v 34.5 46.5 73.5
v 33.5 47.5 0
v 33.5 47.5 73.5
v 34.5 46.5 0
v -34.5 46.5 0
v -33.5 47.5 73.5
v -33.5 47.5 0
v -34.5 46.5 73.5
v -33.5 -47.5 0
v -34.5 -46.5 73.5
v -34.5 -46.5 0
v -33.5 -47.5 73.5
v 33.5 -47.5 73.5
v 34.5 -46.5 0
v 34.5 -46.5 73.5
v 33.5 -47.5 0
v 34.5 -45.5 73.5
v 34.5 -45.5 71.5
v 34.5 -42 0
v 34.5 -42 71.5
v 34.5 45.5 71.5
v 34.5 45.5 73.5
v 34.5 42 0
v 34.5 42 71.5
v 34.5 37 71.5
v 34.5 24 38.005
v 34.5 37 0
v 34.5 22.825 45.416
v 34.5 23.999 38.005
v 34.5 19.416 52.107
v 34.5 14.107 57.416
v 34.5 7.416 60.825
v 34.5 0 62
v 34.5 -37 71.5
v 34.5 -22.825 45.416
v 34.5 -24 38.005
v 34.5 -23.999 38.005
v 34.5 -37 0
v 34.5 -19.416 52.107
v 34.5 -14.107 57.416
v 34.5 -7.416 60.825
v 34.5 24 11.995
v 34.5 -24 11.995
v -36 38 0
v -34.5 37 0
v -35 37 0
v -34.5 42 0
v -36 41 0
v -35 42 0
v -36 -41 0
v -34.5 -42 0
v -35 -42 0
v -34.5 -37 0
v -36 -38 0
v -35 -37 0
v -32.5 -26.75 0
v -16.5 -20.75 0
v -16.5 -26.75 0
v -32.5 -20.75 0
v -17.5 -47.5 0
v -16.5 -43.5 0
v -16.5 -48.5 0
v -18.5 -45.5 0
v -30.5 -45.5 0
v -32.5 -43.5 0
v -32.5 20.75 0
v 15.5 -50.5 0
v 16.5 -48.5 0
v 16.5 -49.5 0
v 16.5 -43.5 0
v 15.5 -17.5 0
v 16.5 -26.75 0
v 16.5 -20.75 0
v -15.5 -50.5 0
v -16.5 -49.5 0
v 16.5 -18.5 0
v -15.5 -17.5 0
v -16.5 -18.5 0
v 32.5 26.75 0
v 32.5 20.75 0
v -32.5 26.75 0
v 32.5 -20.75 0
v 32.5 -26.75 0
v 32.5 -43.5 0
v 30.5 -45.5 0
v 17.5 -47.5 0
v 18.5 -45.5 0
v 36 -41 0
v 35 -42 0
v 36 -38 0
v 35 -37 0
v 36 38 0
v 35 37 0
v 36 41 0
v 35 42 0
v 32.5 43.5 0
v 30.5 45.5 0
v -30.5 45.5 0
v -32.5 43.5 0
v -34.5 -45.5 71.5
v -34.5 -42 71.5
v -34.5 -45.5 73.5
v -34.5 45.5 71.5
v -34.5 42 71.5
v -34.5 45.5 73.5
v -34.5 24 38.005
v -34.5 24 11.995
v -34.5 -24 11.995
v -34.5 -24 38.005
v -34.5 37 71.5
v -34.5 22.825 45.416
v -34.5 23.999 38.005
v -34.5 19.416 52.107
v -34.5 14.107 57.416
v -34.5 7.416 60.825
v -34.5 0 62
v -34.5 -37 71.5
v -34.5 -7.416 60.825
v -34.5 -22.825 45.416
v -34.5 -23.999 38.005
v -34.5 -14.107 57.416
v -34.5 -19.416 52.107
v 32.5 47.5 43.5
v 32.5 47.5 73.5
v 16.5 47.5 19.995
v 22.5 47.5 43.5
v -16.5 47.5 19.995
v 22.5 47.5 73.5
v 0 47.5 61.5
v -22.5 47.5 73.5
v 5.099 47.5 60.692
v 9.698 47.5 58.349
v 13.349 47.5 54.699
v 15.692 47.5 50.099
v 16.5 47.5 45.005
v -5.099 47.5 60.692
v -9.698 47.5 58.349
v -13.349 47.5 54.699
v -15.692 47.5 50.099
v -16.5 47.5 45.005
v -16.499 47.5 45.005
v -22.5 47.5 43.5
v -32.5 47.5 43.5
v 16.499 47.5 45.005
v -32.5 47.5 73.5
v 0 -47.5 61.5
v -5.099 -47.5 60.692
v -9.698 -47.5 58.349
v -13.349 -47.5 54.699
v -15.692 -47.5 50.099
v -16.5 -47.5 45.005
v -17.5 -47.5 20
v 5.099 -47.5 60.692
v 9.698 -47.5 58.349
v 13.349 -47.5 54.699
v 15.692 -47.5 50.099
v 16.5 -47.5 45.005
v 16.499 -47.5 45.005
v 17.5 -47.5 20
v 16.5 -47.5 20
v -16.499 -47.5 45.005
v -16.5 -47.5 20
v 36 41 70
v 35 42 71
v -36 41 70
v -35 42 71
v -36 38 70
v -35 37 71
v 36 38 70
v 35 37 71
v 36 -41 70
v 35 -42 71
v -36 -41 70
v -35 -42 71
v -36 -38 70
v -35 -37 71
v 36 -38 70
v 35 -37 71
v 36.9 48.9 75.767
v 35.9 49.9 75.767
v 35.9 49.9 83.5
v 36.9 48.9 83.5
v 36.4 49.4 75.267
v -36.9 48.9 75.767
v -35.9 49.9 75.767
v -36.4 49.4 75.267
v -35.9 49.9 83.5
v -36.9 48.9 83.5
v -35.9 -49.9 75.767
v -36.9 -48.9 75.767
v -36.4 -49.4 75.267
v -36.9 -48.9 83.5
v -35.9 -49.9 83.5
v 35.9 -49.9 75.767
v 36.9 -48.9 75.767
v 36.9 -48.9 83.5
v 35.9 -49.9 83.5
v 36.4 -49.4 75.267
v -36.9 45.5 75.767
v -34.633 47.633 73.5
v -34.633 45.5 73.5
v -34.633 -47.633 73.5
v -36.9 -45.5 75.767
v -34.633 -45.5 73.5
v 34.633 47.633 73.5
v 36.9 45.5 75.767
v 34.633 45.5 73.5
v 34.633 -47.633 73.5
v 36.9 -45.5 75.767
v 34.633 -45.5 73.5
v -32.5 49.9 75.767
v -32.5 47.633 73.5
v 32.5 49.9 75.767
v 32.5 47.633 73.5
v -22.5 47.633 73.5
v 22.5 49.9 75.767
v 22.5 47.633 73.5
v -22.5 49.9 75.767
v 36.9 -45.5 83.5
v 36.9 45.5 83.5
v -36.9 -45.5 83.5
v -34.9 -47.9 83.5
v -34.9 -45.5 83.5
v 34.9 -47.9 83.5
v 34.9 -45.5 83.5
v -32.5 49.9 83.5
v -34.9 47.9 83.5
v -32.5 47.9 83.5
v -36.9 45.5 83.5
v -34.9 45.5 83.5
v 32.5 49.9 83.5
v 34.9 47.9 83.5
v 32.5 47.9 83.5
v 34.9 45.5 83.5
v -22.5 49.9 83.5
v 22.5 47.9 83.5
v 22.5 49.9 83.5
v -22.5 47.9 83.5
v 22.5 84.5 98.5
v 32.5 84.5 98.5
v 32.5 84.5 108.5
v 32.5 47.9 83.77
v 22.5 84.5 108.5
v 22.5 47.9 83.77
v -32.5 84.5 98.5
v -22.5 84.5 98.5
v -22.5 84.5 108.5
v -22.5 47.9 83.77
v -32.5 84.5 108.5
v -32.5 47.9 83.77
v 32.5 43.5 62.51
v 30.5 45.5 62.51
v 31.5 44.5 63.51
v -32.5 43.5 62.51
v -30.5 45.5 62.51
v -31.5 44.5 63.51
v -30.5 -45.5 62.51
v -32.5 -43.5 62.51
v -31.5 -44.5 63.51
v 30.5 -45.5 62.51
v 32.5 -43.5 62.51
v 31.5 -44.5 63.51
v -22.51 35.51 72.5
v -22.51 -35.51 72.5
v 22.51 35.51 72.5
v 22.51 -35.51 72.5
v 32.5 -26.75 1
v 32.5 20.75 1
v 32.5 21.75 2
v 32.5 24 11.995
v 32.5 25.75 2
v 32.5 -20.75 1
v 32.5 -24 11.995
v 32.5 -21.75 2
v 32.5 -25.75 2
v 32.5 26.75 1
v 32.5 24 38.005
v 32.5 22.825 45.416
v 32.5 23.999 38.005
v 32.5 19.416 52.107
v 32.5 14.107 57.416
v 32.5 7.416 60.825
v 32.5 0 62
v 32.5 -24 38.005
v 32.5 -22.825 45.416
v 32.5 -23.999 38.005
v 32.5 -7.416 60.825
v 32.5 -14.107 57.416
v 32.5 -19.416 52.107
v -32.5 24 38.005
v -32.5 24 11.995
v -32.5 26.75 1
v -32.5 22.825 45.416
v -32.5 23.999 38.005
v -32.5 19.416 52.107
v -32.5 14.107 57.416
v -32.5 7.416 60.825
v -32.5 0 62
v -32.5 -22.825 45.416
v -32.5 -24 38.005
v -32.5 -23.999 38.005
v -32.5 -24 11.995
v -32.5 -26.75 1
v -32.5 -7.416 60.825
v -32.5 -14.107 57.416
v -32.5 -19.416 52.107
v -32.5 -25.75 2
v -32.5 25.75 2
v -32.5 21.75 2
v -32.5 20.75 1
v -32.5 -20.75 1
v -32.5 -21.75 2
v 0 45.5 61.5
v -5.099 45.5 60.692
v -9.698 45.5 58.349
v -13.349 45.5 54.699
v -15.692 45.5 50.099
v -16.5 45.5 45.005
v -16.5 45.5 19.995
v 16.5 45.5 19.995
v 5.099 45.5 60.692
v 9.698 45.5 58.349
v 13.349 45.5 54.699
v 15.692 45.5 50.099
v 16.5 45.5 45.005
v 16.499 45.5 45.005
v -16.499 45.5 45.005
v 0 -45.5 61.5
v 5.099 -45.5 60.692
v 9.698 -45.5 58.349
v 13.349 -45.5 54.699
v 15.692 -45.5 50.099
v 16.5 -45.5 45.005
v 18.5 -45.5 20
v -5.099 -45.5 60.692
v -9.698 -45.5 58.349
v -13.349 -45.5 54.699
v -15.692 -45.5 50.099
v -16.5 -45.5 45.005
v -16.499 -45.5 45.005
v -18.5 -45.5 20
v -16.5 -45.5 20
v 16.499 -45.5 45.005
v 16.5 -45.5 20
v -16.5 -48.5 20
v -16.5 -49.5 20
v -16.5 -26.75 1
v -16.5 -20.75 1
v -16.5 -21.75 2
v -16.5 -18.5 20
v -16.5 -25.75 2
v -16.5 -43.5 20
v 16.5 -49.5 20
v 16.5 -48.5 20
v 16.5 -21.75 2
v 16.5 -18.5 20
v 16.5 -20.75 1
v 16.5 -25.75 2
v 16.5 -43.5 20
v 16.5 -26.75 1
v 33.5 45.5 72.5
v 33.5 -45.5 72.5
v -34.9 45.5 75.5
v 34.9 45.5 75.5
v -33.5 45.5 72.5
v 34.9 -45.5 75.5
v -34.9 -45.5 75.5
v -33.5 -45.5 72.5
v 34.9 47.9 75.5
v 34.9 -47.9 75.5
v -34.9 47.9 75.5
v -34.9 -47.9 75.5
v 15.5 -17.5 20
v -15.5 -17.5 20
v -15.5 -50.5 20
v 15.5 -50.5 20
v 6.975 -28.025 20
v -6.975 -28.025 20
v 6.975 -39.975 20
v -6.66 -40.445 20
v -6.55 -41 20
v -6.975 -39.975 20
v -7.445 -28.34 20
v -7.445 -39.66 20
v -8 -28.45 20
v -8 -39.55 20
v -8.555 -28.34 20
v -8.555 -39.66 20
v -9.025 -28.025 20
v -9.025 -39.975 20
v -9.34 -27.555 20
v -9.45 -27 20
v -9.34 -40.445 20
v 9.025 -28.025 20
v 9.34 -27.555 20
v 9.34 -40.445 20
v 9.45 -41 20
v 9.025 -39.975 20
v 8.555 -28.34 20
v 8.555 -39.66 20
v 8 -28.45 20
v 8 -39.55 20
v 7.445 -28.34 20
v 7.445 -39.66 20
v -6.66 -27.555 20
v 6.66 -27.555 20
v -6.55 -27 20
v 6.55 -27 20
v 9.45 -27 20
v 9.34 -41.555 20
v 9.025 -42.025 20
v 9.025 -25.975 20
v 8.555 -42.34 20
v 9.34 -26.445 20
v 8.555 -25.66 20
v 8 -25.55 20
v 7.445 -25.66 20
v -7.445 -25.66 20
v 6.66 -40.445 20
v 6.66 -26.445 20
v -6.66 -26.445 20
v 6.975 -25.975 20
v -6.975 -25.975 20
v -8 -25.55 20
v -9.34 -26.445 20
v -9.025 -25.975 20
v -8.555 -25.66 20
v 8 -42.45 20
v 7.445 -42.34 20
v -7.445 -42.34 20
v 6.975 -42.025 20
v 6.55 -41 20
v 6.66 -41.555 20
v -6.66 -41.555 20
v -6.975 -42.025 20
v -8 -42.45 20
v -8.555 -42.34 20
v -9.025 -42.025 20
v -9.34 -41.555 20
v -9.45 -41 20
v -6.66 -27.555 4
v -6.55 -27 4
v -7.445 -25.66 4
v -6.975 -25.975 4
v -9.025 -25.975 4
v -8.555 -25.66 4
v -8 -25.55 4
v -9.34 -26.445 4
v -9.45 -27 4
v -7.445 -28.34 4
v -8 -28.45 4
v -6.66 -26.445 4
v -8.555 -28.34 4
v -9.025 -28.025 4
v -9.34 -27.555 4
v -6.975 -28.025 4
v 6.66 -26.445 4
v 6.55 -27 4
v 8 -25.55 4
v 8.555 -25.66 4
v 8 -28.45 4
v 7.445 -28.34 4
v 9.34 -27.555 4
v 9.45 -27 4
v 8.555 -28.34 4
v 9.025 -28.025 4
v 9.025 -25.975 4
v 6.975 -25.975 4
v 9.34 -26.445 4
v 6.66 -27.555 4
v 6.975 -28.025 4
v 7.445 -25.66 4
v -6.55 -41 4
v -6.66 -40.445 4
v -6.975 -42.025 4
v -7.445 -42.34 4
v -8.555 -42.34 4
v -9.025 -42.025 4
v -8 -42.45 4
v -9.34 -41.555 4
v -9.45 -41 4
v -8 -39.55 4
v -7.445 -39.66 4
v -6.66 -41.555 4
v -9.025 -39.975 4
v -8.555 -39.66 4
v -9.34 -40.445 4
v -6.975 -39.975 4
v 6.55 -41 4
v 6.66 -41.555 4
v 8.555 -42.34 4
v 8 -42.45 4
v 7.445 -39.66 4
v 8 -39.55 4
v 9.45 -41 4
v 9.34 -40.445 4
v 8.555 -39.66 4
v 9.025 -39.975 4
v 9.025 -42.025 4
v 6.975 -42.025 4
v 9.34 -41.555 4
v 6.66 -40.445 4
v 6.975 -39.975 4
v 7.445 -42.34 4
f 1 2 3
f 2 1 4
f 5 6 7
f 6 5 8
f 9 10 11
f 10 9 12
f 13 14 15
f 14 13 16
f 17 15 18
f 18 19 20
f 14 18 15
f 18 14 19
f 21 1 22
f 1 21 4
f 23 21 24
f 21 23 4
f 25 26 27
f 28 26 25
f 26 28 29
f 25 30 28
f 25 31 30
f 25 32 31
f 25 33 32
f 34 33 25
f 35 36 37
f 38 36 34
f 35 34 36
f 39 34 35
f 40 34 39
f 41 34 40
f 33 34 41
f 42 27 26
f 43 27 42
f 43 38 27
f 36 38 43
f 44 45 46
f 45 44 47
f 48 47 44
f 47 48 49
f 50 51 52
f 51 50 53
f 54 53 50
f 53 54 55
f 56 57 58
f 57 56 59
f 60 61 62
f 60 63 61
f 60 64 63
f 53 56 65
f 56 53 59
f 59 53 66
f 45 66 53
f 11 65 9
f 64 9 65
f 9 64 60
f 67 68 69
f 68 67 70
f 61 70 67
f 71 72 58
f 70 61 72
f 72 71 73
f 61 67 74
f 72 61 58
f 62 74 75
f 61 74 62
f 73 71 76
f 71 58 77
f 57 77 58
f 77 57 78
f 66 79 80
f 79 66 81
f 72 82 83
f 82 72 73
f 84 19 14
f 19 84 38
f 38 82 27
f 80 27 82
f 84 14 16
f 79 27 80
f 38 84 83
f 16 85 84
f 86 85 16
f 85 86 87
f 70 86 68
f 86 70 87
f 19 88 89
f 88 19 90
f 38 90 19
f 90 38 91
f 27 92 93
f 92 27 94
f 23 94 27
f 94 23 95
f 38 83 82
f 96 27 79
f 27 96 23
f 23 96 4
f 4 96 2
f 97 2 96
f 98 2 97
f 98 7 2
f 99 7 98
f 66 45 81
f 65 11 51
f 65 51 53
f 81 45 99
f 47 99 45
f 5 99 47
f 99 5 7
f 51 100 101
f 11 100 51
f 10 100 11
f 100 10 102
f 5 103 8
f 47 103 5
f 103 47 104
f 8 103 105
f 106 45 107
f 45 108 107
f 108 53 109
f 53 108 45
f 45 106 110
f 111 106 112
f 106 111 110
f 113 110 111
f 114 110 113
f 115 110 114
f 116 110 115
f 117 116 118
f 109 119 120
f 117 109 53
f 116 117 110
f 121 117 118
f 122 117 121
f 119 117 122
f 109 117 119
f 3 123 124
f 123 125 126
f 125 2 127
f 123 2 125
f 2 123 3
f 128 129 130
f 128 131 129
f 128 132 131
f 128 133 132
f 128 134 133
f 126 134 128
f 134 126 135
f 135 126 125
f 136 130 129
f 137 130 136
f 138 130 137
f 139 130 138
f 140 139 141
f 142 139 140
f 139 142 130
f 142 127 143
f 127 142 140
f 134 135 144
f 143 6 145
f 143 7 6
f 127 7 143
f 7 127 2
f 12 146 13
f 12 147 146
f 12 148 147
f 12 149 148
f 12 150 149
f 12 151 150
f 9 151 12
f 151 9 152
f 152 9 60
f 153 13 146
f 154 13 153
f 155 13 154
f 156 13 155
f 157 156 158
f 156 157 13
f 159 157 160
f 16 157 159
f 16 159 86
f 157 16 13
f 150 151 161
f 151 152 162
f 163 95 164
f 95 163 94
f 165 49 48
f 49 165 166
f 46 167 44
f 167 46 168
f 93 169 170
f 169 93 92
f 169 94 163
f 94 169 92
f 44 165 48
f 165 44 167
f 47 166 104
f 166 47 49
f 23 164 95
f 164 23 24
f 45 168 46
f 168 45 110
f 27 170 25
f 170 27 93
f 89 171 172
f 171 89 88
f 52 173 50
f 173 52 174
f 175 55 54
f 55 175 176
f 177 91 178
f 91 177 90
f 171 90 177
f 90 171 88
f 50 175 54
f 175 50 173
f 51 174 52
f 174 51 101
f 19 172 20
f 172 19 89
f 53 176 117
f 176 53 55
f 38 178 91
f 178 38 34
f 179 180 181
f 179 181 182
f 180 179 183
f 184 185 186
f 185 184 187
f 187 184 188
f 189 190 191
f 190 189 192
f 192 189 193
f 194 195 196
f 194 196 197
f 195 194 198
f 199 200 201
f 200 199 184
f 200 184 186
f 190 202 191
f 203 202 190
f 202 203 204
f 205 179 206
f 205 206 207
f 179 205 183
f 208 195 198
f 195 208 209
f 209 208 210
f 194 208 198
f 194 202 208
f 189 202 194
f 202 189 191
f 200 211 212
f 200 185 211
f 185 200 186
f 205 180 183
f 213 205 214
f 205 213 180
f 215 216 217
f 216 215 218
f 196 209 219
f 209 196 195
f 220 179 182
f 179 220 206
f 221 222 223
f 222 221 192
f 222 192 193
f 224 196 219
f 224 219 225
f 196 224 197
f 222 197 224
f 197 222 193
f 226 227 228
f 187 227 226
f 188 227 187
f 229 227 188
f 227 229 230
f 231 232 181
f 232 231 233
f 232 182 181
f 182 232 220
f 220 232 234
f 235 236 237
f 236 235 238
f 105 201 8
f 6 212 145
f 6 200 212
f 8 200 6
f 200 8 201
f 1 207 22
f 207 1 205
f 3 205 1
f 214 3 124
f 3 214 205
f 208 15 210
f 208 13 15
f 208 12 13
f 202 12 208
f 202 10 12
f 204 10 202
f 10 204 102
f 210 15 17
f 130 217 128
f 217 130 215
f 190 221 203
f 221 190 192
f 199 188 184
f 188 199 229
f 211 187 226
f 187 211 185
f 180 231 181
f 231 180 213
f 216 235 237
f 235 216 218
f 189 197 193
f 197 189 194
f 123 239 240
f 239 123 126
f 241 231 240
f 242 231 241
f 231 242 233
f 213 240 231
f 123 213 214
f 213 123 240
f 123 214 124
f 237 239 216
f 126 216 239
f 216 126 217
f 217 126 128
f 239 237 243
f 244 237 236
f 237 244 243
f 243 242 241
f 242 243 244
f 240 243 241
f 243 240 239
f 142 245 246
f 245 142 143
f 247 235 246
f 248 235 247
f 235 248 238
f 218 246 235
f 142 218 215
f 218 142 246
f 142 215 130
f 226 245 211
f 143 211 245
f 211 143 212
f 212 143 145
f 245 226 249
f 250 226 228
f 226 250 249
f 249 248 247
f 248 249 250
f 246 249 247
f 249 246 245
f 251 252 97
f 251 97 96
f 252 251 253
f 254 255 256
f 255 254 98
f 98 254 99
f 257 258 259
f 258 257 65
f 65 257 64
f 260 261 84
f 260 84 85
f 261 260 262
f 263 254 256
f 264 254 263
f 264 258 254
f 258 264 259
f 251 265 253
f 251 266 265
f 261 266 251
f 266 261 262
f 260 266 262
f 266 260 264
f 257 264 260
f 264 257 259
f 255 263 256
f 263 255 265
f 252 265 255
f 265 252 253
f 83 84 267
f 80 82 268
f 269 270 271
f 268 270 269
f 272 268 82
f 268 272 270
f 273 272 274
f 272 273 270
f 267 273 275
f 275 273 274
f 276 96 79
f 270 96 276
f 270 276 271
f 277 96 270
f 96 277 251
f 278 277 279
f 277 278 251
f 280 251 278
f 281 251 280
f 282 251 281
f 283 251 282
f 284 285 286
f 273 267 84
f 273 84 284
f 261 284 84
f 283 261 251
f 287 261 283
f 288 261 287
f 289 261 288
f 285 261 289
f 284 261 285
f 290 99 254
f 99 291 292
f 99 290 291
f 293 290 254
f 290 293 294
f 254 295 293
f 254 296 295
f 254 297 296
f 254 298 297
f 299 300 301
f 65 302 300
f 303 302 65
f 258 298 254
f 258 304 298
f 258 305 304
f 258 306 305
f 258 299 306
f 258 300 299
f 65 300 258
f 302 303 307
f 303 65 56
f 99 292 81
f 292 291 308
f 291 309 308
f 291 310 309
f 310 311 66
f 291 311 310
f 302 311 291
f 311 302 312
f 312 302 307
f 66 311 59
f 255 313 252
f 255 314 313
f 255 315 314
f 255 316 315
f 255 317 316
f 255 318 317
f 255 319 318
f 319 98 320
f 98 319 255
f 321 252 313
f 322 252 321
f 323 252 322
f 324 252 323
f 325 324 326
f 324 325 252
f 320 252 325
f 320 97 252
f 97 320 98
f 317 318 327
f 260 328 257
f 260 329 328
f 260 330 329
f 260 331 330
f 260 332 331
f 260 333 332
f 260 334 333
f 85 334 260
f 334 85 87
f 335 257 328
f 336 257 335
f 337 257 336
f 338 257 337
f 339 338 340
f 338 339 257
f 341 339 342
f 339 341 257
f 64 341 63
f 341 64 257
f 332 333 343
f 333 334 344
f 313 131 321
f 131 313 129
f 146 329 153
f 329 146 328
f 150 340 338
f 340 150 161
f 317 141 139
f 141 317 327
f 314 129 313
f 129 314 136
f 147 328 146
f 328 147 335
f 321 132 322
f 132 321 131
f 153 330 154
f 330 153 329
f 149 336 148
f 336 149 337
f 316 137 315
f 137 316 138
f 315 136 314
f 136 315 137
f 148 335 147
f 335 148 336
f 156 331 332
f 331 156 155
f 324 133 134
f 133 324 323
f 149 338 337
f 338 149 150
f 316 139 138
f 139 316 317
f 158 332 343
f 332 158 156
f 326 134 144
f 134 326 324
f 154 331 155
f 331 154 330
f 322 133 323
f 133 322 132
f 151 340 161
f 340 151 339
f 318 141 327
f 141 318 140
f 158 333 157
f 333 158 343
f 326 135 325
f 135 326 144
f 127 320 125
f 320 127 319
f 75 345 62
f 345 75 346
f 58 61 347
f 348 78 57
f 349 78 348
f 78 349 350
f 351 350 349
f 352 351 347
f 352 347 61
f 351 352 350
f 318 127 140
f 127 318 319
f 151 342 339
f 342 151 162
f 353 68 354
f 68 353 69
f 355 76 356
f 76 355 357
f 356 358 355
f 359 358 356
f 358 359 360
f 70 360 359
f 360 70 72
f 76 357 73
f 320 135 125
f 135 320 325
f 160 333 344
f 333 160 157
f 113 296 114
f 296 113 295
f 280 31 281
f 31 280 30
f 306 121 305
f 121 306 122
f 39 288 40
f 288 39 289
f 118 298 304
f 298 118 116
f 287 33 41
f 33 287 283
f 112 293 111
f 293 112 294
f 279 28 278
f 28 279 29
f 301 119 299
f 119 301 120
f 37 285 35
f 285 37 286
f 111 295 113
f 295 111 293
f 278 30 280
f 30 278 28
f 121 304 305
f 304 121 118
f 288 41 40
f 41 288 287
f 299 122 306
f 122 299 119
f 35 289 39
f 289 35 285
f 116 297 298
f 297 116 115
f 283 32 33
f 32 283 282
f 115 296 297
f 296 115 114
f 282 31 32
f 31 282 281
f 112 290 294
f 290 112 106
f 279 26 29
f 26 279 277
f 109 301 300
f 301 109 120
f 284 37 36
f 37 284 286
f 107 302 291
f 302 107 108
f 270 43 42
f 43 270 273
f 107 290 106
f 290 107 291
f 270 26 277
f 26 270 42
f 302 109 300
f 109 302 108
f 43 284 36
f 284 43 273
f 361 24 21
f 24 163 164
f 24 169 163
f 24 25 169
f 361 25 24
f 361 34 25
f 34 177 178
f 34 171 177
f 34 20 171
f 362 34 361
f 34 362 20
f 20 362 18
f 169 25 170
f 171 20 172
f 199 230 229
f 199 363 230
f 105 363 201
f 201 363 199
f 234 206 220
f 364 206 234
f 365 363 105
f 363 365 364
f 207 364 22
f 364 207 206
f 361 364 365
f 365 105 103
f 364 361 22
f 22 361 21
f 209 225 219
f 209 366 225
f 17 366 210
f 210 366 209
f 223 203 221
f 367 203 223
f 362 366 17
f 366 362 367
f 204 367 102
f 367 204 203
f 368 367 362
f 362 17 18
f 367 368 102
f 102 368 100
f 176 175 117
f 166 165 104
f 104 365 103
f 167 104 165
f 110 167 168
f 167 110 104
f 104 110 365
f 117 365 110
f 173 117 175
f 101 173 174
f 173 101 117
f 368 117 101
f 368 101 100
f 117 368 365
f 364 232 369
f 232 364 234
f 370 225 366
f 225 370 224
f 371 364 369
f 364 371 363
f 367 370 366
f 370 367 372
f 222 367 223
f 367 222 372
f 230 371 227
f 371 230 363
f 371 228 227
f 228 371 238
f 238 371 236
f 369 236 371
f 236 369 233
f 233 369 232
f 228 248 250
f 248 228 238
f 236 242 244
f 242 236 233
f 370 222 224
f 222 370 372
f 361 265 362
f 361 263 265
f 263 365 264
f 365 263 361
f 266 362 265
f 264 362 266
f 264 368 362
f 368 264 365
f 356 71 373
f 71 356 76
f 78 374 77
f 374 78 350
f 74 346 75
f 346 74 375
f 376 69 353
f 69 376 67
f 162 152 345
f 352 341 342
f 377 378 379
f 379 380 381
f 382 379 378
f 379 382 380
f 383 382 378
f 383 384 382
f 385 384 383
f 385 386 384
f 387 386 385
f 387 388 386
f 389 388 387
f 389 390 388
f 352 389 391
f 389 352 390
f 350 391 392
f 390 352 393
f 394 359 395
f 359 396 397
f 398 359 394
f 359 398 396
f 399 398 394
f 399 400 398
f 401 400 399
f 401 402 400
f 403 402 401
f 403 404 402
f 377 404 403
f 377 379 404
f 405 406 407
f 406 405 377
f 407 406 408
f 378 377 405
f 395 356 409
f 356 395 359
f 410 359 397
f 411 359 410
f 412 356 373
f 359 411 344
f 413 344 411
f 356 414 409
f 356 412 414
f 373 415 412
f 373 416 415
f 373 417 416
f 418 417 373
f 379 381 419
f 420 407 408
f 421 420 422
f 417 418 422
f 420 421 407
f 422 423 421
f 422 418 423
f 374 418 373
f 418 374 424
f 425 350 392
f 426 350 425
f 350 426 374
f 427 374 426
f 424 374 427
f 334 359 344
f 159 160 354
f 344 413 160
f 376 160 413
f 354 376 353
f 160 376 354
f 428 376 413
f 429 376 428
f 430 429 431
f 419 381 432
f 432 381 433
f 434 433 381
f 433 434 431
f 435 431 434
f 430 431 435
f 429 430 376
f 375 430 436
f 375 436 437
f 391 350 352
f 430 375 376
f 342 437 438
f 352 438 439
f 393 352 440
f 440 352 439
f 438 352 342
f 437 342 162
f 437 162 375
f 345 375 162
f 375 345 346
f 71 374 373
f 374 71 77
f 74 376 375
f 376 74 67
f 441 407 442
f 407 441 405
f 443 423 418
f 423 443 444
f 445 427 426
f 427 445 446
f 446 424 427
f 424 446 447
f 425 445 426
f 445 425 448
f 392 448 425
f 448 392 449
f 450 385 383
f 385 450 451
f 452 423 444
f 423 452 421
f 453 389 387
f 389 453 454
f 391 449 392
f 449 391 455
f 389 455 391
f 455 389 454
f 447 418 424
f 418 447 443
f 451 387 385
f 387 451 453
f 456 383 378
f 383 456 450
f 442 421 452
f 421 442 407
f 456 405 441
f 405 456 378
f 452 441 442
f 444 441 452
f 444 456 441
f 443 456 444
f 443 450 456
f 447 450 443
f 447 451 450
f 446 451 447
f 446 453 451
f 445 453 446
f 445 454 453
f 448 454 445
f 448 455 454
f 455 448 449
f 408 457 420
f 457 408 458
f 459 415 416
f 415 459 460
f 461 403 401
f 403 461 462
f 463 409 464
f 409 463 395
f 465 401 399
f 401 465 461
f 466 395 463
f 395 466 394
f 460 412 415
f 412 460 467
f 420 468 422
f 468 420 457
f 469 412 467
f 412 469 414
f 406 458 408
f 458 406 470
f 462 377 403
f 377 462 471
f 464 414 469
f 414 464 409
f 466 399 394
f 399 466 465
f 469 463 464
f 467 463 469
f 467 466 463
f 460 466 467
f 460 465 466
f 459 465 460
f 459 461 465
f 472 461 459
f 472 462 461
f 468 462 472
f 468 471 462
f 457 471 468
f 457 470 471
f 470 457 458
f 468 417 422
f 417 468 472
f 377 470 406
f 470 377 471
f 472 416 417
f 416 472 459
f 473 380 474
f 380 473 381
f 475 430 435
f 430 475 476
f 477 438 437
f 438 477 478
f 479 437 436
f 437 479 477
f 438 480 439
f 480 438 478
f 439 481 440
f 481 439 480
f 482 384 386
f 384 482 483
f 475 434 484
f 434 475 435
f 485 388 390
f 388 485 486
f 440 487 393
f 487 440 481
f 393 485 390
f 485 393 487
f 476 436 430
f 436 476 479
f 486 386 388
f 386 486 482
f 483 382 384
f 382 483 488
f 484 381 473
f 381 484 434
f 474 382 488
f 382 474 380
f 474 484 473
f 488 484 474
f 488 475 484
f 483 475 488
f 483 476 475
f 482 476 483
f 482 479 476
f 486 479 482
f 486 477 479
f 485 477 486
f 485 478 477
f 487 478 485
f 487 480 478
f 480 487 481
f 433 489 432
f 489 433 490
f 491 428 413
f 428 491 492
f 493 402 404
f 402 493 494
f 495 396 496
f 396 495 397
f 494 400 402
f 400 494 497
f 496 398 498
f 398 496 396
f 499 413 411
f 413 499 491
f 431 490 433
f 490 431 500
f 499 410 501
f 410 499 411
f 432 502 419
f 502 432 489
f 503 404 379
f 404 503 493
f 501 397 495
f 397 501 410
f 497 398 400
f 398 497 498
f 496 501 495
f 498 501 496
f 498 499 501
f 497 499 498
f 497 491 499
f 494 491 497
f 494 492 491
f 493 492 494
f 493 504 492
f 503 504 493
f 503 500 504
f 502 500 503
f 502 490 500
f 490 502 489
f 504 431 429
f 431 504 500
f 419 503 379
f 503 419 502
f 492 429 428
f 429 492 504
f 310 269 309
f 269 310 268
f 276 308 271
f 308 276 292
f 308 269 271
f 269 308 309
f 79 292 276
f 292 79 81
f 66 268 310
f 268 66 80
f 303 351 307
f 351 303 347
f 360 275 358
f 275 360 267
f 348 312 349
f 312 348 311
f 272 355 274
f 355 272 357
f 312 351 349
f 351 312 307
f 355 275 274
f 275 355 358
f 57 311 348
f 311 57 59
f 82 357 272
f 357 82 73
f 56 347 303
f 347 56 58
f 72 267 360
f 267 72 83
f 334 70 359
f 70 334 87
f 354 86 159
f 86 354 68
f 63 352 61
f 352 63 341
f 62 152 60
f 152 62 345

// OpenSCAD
// file: base_objects.scad
/*

  base_objects.scad
  
  (c) olikraus@gmail.com

  This work is licensed under the Creative Commons Attribution-NonCommercial-ShareAlike 4.0 International License.
  To view a copy of this license, visit http://creativecommons.org/licenses/by-nc-sa/4.0/.

  SquareFrustum(bottom=[10,10], top=[0,0], h=10)
  CenterCube(dim, ChamferBody = 0, ChamferBottom=0, ChamferTop=0)
  Archoid(r=10, b=20, l=30)

*/


/*
  SquareFrustum(bottom=[10,10], top=[0,0], h=10)
  https://en.wikipedia.org/wiki/Frustum
  
  Args:
    buttom: Bottom square (width, height)
    top: Top square (width, height)
    h: Distance of the top square to z=0 plane
    ChamferBody: The amount to chamfer for edges parallel to z axis
  Notes:
    The bottom square is placed in the z=0 plane.
    The squares are centered around z axis.
  Example:
    SquareFrustum([20,20], [10,4], h=20);
    

    // create a rectangle bowl
    // same example as for CenterCube
    // SquareFrustum might be more flexible because it is not
    // restricted to the 45 degree chamfer
    
    union() {
      wallthickness=2;
      xwidth = 10;
      ywidth = 20;
      height = 5;
      translate([0,0,wallthickness])
      difference() {
        CenterCube([xwidth+2*wallthickness,ywidth+2*wallthickness,5-wallthickness]);
        CenterCube([xwidth,ywidth,5-wallthickness+0.01]);
      }    
      SquareFrustum(
        bottom=[xwidth,ywidth], 
        top=[xwidth+2*wallthickness,ywidth+2*wallthickness], 
        h=wallthickness);
    }
    
*/
module SquareFrustum_old(bottom=[10,10], top=[0,0], h=10) {
  lx = bottom[0];
  ly = bottom[1];
  ux = top[0];
  uy = top[1];
  p = [
    [ -lx/2, -ly/2,  0 ],  //0
    [ lx/2,  -ly/2,  0 ],  //1
    [ lx/2,  ly/2,  0 ],  //2
    [ -lx/2,  ly/2,  0 ],  //3
    [ -ux/2, -uy/2,  h ],  //4
    [ ux/2,  -uy/2,  h ],  //5
    [ ux/2,  uy/2,  h ],  //6
    [ -ux/2,  uy/2,  h ]]; //7
    
  f = [
    [0,1,2,3],  // bottom
    [4,5,1,0],  // front
    [7,6,5,4],  // top
    [5,6,2,1],  // right
    [6,7,3,2],  // back
    [7,4,0,3]]; // left
  polyhedron( p, f );
}

module SquareFrustum(bottom=[10,10], top=[0,0], h=10, ChamferBody=0) {
  c = ChamferBody/2;
  lx = bottom[0]-2*c;
  ly = bottom[1]-2*c;
  ux = top[0]-2*c;
  uy = top[1]-2*c;
  p = [
    [ -lx/2-c, -ly/2+c,  0 ],  //0 / 0, 0
    [ -lx/2+c, -ly/2-c,  0 ],  //0 / 1, 1
  
    [ lx/2-c,  -ly/2-c,  0 ],  //1 / 0, 2
    [ lx/2+c,  -ly/2+c,  0 ],  //1 / 1, 3
  
    [ lx/2+c,  ly/2-c,  0 ],  //2 / 0, 4
    [ lx/2-c,  ly/2+c,  0 ],  //2 / 1, 5
  
    [ -lx/2+c,  ly/2+c,  0 ],  //3 / 0, 6
    [ -lx/2-c,  ly/2-c,  0 ],  //3 / 1, 7
  
    [ -ux/2-c, -uy/2+c,  h ],  //4 / 0, 8
    [ -ux/2+c, -uy/2-c,  h ],  //4 / 1, 9
  
    [ ux/2-c,  -uy/2-c,  h ],  //5 / 0, 10
    [ ux/2+c,  -uy/2+c,  h ],  //5 / 1, 11
 
    [ ux/2+c,  uy/2-c,  h ],  //6 / 0, 12
    [ ux/2-c,  uy/2+c,  h ],  //6 / 1, 13
    
    [ -ux/2+c,  uy/2+c,  h ], //7 / 0, 14
    [ -ux/2-c,  uy/2-c,  h ]]; //7 / 1, 15
    
  f = [
    [0,1,2,3,4,5,6,7],  // bottom
    [8,9,1,0], // front left
    [9,10,2,1],  // front 
    [10,11,3,2], // front right
    [15,14,13,12,11,10,9,8],  // top
    [11,12,4,3],  // right
    [12,13,5,4],  // back right
    [13,14,6,5],  // back
    [14,15,7,6], // back left
    [15,8,0,7]]; // left
  polyhedron( p, f );
}


/*
  ChamferZCube(w=1,h=10)

  A cube, which can be used to chamfer along the z axis

  Args:
    w: The width of the cube is sqrt(2)*w
    h: Height of the cube
    d: The cube has a descent below z=0 plane and an ascent beyond h by this value
  Notes:
    The cube is centered around z-axsis and placed on z=0 plane.

*/
module ChamferZCube(w=1,h=10, d=0) {
  translate([0,0,h/2])
  rotate([0,0,45])
  cube([sqrt(2)*w,sqrt(2)*w,h+2*d], center=true);
}

module ChamferXCube(w=1,h=10, d=0) {
  rotate([45,0,0])
  cube([h+2*d,sqrt(2)*w,sqrt(2)*w], center=true);
}

module ChamferYCube(w=1,h=10, d=0) {
  rotate([0,45,0])
  cube([sqrt(2)*w,h+2*d,sqrt(2)*w], center=true);
}

/*
  CenterCube(dim, ChamferBody = 0, ChamferBottom=0, ChamferTop=0)

  A cube which is centered along z axis but is placed on z=0 plane
  Optionally allows chamfer along z axis.

  Args:
    dim: Same as for cube(dim)
    ChamferBody: The amount to chamfer for edges parallel to z axis
    ChamferBottom: The amount to chamfer for edges in z=0 plane
    ChamferTop: The amount to chamfer for edges in z=dim[2] plane
  Example:
    CenterCube([10, 20, 5]);

    // create a rectangle bowl
    // thanks to chamfer no support is required with 3d print
    difference() {  
      wallthickness=2;
      xwidth = 10;
      ywidth = 20;
      height = 5;
      CenterCube( 
        [xwidth+2*wallthickness, ywidth+2*wallthickness, height], 
        ChamferBottom = wallthickness);
      translate([0,0,wallthickness])
      CenterCube([xwidth,ywidth,height]);
    }

*/

module CenterCube(dim, ChamferBody = 0, ChamferBottom=0, ChamferTop=0) {
  difference() {
    translate([0,0,dim[2]/2])
    cube(dim, center=true);

    if ( ChamferBody > 0 ) {
      translate([dim[0]/2,dim[1]/2,0])
      ChamferZCube(w=ChamferBody,h=dim[2],d=0.01);
      
      translate([-dim[0]/2,dim[1]/2,0])
      ChamferZCube(w=ChamferBody,h=dim[2],d=0.01);

      translate([-dim[0]/2,-dim[1]/2,0])
      ChamferZCube(w=ChamferBody,h=dim[2],d=0.01);

      translate([dim[0]/2,-dim[1]/2,0])
      ChamferZCube(w=ChamferBody,h=dim[2],d=0.01);
    }
    
    if ( ChamferBottom > 0 )
    {
      translate([-dim[0]/2,0,0])
      ChamferYCube(w=ChamferBottom,h=dim[1],d=0.01);

      translate([dim[0]/2,0,0])
      ChamferYCube(w=ChamferBottom,h=dim[1],d=0.01);

      translate([0,-dim[1]/2,0])
      ChamferXCube(w=ChamferBottom,h=dim[0],d=0.01);

      translate([0,dim[1]/2,0])
      ChamferXCube(w=ChamferBottom,h=dim[0],d=0.01);
    }
    
    if ( ChamferTop > 0 )
    {
      translate([-dim[0]/2,0,dim[2]])
      ChamferYCube(w=ChamferTop,h=dim[1],d=0.01);

      translate([dim[0]/2,0,dim[2]])
      ChamferYCube(w=ChamferTop,h=dim[1],d=0.01);

      translate([0,-dim[1]/2,dim[2]])
      ChamferXCube(w=ChamferTop,h=dim[0],d=0.01);

      translate([0,dim[1]/2,dim[2]])
      ChamferXCube(w=ChamferTop,h=dim[0],d=0.01);
    }
    
  }
}

/*
  Archoid(r=10, b=20, l=30)

  A chest like element with a half cylinder on the top
  and a box as a base.
  If used with difference, the result is a archway.

  Args:
    r: Radius of the half-cylinder
    b: height of the base block
    l: length of the chest in x direction.
    $fn: resolution of the half cylinder
  Notes:
    The width of the chest is 2*r, the height is b+r.
    Archoid(r=10, b=20, l=30, $fn=4) becomes a house.

*/
module Archoid(r=10, b=20, l=30) {
  union() {
    translate([0,0,b])
    difference() {
      rotate([0,90,0])
      cylinder(r=r,h=l,center=true);
      translate([0,0,-r])
      cube([2*l,2*l,2*r], center=true);
    }
    translate([0,0,b/2])
    cube([l,2*r,b+0.01], center=true);
  }
}
// main file
/*

  ccm_sorter.scad
  
  (c) olikraus@gmail.com

  This work is licensed under the Creative Commons Attribution-NonCommercial-ShareAlike 4.0 International License.
  To view a copy of this license, visit http://creativecommons.org/licenses/by-nc-sa/4.0/.

  21 Mar 2021 
    - Bugfix: Added pile gap, updated rail
    - Moved wheel towards eject house (2mm), bigger Archoid
  
 22 Mar 2021
  - sorter rail must be higher --> done
  - sorter rail must be longer --> done
  - add side stripes, similar to funnel --> done
  
 6 Jun 2021
  - Reduce ChamferYCube width in line 387

*/

include <card_compare_machine.scad>;

//translate([-2*card_width, 0,0])
sorter_house(false);



module xSlopeCube(w = 10, l = 35, zs = 20, hs = 10, ze = 50, he = 10) {
/*
w = 10;
l = 35;
zs = 20;  // upper position on sorter side
hs = 20;   // height on sorter side
ze = 50;  // upper position on eject side
he = 10;  // height on eject side
*/

p = [
  [ -w/2, 0,  zs-hs ],  //0
  [ w/2,  0,  zs-hs ],  //1
  [ w/2,  l,  ze-he ],  //2
  [ -w/2, l,  ze-he ],  //3
  [ -w/2, 0,  zs ],  //4
  [ w/2,  0,  zs ],  //5
  [ w/2,  l,  ze ],  //6
  [ -w/2, l,  ze ]]; //7
  
f = [
  [0,1,2,3],  // bottom
  [4,5,1,0],  // front
  [7,6,5,4],  // top
  [5,6,2,1],  // right
  [6,7,3,2],  // back
  [7,4,0,3]]; // left
polyhedron( p, f );
}

//SlopeCube();
